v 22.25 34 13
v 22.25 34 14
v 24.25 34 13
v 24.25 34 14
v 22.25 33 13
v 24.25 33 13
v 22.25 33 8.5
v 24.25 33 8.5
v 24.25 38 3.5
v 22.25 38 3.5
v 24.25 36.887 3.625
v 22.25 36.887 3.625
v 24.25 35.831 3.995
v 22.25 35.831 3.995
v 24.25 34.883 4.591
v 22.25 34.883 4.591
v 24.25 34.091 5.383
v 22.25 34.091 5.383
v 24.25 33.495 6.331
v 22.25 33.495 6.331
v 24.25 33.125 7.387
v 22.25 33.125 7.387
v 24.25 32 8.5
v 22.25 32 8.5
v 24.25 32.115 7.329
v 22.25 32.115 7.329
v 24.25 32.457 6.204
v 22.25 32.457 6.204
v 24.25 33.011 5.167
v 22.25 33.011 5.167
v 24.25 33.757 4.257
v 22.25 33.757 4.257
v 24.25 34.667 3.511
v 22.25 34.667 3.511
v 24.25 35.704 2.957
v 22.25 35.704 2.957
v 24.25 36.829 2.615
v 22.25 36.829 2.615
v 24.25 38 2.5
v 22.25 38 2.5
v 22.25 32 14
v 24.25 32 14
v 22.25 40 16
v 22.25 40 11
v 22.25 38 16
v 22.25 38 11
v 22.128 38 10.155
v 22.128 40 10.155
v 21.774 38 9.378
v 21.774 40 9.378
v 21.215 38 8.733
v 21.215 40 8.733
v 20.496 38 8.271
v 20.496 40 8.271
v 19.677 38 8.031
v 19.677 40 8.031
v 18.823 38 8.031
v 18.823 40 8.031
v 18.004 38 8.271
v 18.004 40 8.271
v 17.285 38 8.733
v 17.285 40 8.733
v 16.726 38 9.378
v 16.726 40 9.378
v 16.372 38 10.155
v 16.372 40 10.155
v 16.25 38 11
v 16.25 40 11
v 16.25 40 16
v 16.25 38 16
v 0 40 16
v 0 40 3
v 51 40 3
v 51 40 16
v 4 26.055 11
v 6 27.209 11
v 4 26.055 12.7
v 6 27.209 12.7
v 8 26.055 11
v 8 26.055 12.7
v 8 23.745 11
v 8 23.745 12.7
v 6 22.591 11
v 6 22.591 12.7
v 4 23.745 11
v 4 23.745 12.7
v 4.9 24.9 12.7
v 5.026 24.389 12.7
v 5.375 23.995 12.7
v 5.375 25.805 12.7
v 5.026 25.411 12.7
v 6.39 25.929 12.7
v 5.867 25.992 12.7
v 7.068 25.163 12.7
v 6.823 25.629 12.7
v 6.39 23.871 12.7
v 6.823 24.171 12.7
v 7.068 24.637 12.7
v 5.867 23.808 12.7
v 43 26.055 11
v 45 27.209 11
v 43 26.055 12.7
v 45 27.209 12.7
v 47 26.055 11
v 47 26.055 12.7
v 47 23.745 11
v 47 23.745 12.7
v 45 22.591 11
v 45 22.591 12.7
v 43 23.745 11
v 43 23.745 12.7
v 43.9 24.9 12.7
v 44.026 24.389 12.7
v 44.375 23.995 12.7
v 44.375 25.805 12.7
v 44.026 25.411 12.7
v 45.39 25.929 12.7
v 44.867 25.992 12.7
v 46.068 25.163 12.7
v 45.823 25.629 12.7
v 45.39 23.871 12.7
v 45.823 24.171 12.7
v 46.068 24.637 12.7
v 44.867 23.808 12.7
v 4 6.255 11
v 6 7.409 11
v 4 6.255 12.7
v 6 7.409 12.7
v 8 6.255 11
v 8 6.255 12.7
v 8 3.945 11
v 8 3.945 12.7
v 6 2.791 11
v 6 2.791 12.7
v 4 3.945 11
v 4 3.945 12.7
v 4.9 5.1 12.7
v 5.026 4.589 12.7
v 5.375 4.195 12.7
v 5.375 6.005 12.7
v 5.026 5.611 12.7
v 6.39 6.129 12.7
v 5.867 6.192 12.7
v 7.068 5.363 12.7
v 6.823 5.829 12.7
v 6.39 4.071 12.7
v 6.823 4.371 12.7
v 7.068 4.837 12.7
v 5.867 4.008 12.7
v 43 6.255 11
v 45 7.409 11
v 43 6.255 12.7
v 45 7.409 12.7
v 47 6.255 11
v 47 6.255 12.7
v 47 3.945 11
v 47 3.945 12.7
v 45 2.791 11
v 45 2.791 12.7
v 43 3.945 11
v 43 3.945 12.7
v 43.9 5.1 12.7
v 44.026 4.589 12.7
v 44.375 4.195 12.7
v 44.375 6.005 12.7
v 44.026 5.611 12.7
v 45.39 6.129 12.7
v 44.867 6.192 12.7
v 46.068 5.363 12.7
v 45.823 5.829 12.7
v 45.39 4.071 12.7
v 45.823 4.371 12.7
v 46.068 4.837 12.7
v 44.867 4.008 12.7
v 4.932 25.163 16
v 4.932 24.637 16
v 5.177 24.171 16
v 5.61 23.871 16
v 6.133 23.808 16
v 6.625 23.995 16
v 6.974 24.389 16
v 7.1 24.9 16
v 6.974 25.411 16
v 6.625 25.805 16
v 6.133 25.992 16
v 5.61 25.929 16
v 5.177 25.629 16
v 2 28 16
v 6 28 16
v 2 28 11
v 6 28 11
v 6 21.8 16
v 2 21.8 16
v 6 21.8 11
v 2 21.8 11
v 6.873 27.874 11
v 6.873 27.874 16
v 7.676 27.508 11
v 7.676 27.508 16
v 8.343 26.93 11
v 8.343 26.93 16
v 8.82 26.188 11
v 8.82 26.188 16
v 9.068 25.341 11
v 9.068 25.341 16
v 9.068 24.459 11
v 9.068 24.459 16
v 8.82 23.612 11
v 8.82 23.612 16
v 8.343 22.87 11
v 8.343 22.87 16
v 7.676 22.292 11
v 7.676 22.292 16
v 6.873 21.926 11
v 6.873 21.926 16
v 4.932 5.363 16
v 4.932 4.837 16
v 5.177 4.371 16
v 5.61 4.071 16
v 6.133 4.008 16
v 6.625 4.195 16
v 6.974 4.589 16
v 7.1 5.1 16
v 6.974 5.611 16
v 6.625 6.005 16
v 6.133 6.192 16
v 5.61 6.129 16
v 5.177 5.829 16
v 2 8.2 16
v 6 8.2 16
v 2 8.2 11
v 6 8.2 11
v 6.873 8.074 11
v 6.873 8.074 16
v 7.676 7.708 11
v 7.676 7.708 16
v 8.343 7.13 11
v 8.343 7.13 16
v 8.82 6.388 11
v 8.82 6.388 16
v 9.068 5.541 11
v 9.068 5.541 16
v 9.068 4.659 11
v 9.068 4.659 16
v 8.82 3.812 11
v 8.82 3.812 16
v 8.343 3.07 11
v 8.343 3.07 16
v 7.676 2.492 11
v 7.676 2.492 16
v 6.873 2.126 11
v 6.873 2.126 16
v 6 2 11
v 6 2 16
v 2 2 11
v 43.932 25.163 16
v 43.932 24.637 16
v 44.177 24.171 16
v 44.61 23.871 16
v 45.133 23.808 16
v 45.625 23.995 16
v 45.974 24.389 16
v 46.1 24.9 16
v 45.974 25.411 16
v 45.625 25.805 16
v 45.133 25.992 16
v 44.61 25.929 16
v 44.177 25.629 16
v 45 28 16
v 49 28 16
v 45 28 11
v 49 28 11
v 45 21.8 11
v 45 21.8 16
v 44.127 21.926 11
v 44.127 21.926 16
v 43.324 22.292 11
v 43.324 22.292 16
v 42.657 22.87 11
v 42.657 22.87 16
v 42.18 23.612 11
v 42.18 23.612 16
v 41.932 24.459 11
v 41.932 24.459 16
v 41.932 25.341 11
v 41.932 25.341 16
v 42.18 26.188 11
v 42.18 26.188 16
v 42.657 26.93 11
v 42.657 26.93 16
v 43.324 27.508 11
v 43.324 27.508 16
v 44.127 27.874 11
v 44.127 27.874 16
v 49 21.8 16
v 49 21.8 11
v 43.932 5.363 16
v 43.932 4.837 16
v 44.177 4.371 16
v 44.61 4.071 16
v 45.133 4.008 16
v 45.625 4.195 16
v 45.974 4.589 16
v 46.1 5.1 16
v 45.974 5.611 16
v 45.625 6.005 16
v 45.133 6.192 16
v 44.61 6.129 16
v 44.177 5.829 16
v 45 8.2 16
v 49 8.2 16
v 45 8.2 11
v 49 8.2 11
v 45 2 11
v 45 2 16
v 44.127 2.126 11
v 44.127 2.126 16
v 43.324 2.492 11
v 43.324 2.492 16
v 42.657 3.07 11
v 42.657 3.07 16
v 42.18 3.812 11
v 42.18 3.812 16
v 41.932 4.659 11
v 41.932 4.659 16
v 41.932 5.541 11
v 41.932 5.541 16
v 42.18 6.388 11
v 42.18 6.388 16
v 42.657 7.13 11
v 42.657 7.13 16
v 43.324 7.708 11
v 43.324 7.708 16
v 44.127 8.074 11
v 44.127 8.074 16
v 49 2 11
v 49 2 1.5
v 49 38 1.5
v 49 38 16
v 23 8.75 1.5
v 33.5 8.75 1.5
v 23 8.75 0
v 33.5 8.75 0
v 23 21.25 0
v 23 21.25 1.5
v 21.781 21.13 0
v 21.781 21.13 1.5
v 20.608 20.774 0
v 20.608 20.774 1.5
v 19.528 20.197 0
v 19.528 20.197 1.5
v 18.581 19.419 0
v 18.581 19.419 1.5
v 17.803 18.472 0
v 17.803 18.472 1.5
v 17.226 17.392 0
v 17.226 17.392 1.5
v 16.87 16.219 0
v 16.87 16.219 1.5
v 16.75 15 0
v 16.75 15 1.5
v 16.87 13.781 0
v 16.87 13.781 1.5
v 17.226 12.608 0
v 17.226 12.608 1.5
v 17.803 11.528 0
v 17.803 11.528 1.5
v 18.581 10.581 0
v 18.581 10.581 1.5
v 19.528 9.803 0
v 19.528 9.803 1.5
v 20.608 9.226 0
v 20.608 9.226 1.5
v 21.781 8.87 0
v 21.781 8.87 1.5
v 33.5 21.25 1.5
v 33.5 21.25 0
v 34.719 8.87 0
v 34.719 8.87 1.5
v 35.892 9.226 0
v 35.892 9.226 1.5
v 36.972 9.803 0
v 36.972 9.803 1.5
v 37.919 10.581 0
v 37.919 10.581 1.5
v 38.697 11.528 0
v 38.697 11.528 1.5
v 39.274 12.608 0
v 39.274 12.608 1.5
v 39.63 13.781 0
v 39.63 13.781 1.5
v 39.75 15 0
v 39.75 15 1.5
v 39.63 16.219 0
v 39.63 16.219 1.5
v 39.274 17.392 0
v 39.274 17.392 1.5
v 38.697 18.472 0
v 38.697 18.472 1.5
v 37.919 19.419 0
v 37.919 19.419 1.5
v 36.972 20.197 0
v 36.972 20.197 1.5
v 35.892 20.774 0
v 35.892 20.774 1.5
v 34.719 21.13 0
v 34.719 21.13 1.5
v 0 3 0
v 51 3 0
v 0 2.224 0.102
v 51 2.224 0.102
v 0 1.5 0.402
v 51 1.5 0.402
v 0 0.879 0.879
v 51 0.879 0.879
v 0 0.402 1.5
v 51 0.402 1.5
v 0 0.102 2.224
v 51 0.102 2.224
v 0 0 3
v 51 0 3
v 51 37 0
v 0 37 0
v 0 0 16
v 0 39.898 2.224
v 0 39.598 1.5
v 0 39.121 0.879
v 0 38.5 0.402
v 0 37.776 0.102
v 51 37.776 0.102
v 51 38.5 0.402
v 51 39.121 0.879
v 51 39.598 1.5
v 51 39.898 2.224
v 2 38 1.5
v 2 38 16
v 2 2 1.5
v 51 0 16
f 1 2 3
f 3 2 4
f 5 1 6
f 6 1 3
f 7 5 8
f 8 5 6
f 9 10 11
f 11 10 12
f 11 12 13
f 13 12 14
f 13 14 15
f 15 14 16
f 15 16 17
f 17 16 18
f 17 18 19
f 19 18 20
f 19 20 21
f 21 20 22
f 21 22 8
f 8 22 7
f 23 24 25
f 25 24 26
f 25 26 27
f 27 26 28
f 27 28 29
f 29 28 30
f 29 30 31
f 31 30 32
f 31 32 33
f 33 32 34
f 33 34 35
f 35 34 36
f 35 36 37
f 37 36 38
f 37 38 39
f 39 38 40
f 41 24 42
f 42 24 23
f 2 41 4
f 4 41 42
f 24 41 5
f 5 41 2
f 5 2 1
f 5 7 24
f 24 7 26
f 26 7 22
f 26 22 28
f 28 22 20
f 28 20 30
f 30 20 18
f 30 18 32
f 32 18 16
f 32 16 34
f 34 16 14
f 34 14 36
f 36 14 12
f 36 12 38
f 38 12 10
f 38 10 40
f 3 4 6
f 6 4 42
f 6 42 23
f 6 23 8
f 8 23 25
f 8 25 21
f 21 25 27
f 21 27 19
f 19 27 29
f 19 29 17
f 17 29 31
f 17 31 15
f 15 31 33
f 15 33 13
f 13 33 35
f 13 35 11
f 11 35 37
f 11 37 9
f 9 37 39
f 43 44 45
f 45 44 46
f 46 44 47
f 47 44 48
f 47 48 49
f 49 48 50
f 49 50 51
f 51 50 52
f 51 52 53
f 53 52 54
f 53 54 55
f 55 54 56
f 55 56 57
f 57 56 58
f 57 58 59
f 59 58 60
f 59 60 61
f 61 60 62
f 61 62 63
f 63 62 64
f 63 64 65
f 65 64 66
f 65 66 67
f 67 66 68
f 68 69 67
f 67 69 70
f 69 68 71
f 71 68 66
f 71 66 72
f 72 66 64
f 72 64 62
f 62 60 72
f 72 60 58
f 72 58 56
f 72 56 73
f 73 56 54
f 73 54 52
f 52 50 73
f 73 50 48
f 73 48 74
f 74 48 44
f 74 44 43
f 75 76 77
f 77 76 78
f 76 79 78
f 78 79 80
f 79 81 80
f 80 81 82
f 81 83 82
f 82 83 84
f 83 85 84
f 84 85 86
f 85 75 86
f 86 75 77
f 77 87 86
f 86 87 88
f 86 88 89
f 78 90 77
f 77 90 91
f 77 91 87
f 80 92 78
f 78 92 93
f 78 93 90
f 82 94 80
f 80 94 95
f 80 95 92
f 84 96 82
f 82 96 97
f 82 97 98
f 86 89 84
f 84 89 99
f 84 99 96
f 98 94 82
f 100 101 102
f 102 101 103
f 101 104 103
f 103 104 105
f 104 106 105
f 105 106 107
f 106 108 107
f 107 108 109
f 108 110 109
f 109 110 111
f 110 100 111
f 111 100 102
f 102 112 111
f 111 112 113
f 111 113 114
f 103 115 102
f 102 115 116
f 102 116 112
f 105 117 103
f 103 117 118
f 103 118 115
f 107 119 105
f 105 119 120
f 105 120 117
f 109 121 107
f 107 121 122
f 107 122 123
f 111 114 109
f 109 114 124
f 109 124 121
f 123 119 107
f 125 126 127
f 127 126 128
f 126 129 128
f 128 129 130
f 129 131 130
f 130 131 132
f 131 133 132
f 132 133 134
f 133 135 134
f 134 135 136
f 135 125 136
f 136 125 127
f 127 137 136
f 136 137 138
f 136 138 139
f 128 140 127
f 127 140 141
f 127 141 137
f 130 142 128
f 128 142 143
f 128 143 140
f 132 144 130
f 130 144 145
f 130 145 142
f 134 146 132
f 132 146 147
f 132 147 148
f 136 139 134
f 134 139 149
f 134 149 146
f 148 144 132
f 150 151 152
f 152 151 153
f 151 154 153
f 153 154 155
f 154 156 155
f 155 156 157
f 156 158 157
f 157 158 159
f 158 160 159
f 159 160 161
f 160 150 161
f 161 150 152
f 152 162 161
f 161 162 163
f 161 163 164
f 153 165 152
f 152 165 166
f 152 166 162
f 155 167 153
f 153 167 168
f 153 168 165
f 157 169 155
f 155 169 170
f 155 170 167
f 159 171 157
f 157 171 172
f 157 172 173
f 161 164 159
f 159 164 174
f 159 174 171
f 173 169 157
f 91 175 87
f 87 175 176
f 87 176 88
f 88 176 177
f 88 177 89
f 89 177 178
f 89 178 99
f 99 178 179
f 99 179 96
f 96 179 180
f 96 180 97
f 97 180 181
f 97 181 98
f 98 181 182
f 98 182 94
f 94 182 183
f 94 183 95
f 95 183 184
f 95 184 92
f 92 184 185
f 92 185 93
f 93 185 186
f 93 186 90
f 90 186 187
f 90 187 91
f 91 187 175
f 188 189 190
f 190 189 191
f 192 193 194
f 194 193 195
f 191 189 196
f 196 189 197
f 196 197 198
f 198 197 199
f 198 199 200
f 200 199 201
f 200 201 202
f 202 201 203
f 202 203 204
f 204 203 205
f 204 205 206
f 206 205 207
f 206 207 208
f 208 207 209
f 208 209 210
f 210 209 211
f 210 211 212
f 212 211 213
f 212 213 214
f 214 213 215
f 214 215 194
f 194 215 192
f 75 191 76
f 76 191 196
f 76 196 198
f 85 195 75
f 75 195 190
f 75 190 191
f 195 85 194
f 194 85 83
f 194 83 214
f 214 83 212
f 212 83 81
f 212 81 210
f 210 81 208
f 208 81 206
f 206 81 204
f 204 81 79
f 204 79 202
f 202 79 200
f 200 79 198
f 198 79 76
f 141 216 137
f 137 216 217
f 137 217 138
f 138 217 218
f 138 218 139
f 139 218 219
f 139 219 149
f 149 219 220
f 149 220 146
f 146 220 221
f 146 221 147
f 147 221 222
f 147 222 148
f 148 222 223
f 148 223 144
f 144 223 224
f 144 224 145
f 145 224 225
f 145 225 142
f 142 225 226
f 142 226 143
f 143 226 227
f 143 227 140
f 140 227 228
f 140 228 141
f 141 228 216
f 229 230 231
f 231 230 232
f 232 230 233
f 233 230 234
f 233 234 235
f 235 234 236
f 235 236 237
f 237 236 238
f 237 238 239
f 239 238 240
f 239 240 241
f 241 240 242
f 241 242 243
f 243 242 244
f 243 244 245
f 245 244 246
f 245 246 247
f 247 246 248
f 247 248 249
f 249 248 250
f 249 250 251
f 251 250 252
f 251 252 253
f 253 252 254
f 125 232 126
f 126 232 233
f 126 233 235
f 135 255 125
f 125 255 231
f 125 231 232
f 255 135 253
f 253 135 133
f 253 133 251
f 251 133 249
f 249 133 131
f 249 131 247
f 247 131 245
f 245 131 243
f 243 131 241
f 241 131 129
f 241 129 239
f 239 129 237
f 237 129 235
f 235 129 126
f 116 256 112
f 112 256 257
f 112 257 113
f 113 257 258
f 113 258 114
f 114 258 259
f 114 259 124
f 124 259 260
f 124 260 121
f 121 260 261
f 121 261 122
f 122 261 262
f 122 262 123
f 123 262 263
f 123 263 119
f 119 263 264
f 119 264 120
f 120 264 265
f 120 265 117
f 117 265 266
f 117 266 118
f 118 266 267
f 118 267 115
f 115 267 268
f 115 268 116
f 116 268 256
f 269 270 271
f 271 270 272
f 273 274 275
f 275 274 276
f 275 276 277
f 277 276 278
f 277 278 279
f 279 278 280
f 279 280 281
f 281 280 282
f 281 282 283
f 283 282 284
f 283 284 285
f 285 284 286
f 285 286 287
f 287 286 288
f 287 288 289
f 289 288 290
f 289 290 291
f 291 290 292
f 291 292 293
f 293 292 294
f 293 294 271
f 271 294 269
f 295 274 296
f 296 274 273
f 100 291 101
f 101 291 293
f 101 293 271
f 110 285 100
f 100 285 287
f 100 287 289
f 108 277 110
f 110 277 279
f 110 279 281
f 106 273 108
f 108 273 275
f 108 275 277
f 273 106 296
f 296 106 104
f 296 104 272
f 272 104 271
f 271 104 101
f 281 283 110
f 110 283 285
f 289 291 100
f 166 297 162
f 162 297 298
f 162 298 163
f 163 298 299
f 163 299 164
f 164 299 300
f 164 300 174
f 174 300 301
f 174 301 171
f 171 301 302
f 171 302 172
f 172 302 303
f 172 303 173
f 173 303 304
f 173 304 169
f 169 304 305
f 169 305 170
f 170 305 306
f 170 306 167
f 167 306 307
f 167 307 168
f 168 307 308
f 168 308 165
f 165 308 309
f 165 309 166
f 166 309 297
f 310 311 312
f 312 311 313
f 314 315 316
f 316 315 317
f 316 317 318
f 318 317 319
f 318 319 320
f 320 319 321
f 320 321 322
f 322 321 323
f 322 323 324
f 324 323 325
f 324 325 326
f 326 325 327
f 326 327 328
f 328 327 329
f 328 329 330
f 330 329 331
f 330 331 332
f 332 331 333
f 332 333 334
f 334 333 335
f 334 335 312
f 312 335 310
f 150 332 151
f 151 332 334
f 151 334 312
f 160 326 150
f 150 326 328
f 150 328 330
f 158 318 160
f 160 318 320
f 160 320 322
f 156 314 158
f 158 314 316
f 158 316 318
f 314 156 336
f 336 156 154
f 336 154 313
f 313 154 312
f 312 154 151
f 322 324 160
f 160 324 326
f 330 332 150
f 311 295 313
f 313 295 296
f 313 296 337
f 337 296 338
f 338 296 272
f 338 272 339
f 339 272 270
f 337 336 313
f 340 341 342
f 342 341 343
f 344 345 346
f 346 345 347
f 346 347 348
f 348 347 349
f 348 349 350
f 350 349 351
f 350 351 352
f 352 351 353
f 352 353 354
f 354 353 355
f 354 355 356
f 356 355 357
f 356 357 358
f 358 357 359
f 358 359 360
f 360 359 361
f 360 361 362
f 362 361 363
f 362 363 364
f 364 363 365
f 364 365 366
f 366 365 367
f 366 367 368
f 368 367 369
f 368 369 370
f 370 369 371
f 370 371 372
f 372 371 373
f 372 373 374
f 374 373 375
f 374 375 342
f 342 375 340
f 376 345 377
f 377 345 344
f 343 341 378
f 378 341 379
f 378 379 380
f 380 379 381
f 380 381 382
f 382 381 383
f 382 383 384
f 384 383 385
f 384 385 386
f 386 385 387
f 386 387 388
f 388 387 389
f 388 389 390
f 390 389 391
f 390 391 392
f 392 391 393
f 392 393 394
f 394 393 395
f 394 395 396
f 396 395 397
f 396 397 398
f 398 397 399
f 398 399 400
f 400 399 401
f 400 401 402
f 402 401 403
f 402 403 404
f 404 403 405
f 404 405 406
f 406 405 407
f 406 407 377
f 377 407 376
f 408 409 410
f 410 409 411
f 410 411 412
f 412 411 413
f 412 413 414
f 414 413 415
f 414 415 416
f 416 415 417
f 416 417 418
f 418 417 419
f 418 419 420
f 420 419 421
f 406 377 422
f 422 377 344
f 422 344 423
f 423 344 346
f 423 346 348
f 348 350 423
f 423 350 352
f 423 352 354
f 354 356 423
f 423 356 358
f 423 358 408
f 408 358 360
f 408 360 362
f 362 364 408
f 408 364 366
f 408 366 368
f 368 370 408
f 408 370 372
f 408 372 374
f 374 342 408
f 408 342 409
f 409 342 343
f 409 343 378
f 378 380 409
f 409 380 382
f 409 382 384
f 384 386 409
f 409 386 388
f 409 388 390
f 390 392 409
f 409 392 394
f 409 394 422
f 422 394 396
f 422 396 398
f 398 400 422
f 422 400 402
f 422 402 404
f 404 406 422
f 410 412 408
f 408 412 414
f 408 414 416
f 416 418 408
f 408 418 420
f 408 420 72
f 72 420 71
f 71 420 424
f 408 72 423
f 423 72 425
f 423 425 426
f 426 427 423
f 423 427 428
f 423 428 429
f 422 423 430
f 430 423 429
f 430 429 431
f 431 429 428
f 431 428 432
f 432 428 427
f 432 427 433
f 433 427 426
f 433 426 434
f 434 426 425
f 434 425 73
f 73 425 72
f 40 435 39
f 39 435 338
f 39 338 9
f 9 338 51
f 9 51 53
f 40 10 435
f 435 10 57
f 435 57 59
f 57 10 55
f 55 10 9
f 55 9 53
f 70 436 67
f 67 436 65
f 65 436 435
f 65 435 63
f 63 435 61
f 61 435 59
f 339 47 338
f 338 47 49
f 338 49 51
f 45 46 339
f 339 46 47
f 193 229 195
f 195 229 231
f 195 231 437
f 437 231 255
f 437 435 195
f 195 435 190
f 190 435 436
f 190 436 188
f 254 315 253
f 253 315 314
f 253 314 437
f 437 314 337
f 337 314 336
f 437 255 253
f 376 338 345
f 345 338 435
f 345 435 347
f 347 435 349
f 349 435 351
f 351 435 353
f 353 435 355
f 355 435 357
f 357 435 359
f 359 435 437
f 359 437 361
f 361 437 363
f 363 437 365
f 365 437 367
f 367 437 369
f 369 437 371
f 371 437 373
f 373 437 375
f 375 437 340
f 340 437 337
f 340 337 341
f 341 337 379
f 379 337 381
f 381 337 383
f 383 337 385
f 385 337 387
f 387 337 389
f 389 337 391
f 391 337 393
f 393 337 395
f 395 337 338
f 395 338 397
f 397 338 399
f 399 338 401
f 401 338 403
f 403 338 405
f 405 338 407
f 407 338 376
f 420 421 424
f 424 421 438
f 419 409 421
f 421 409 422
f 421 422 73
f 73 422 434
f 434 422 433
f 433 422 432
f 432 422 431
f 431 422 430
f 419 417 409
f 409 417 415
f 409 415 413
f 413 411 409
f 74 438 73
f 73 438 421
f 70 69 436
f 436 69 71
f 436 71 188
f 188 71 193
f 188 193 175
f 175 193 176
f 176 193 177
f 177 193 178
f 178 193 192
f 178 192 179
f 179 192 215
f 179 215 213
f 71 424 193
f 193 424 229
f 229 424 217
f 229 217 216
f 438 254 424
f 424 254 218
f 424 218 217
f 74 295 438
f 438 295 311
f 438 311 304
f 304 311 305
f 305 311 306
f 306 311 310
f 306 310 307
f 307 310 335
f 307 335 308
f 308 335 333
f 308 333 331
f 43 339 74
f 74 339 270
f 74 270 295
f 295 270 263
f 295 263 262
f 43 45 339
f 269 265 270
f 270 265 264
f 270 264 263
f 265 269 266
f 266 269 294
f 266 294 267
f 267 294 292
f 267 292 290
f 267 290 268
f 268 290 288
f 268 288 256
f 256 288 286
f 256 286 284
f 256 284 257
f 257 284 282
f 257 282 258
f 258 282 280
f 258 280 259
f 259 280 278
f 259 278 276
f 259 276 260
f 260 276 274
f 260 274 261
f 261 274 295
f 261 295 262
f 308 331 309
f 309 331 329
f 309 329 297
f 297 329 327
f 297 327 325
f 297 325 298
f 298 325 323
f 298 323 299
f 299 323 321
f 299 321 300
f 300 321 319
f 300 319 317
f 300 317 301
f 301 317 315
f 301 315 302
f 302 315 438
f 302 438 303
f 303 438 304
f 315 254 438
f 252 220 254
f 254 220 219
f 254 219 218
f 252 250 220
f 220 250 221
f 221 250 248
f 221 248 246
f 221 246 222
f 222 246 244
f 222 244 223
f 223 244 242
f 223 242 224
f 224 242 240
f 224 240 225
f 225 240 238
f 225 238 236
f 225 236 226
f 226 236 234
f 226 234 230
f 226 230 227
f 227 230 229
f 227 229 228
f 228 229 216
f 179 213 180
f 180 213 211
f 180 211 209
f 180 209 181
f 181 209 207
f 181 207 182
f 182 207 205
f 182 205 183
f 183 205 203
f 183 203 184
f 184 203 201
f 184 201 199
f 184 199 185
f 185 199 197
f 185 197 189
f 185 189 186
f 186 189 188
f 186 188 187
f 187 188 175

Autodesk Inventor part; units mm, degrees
sketch "Sketch1" plane through (0, 0, 0) normal (0, 0, 1) x (1, 0, 0)
  line L0 (0, 0) -> (51, 0)
  line L1 (51, 0) -> (51, 40)
  line L2 (51, 40) -> (0, 40)
  line L3 (0, 40) -> (0, 0)
  dimension "d0" = 40
  dimension "d1" = 51
extrude "Extrusion1" add sketch "Sketch1" along normal blind 16
sketch "Sketch2" plane through (0, 0, 16) normal (0, 0, 1) x (1, 0, 0)
  line L0 (2, 38) -> (49, 38)
  line L1 (49, 38) -> (49, 2)
  line L2 (49, 2) -> (2, 2)
  line L3 (2, 2) -> (2, 38)
  line L4 (51, 40) -> (0, 40) projected
  line L5 (0, 40) -> (0, 0) projected
  line L6 (51, 0) -> (51, 40) projected
  line L7 (0, 0) -> (51, 0) projected
  dimension "d4" = 2
  dimension "d5" = 2
  dimension "d6" = 2
  dimension "d7" = 2
extrude "Extrusion2" cut sketch "Sketch2" against normal blind 14.5 contours L0 L1 L2 L3
fillet "Fillet1" radius 3 2 edges at (25.5, 40, 0) (25.5, 0, 0)
sketch "Sketch3" plane through (0, 0, 0) normal (0, 0, -1) x (-1, 0, 0)
  line L0 (-51, 3) -> (-51, 37) projected
  line L1 (0, 37) -> (0, 3) projected
  line L2 (-51, 37) -> (0, 37) projected
  line L3 (0, 3) -> (-51, 3) projected
  circle A0 centre (-33.5, 15) radius 6.25
  circle A1 centre (-23, 15) radius 6.25
  line L4 (-33.5, 21.25) -> (-23, 21.25)
  line L5 (-33.5, 8.75) -> (-23, 8.75)
  line L6 (0, 40) -> (-51, 40) projected
  point P0 (0, 0)
  point P1 (-28.25, 21.25)
  dimension "d49" = 12.5
  dimension "d51" = 10.5
  dimension "d52" = 12.5
  dimension "d54" = 17.5
  dimension "d55" = 22.75
  dimension "d58" = 25
extrude "Extrusion3" cut sketch "Sketch3" against normal blind 14 contours A0 A1 | L4 A1 A0 | A0 A1 L5 | A1 A0 | A0 A1
sketch "Sketch4" plane through (0, 40, 16) normal (0, 1, 0) x (1, 0, 0)
  line L0 (35.25, 0) -> (21.25, 0)
  line L1 (21.25, 0) -> (21.25, 8)
  line L2 (21.25, 8) -> (35.25, 8)
  line L3 (35.25, 8) -> (35.25, 0)
  line L4 (51, 0) -> (0, 0) projected
  line L5 (0, 13) -> (0, 0) projected
  line L6 (51, 13) -> (51, 0) projected
  point P0 (0, 16)
  dimension "d18" = 14
  dimension "d19" = 8
  dimension "d20" = 21.25
  dimension "d21" = 15.75
ref_plane "Work Plane1" through (0, 0, 16) normal (0, 0, 1) x (1, 0, 0)
sketch "Sketch5" plane through (0, 0, 16) normal (0, 0, 1) x (1, 0, 0)
  circle A0 centre (6, 24.9) radius 3.1
  line L0 (49, 38) -> (49, 2) projected
  line L1 (6, 28) -> (2, 28)
  line L2 (6, 21.8) -> (2, 21.8)
  circle A1 centre (6, 24.9) radius 1.1
  line L3 (2, 2) -> (2, 38) projected
  line L4 (25.5, 34) -> (25.5, 3) construction
  line L5 (0, 3) -> (51, 3) construction
  line L6 (2, 2) -> (2, 38) construction
  line L7 (49, 38) -> (49, 2) construction
  circle A2 centre (6, 5.1) radius 3.1
  line L8 (6, 2) -> (2, 2)
  line L9 (6, 8.2) -> (2, 8.2)
  circle A3 centre (6, 5.1) radius 1.1
  line L10 (2, 38) -> (2, 2)
  line L11 (2, 38) -> (2, 2) construction
  circle A4 centre (45, 24.9) radius 3.1
  line L12 (45, 28) -> (49, 28)
  line L13 (45, 21.8) -> (49, 21.8)
  circle A5 centre (45, 24.9) radius 1.1
  line L14 (49, 2) -> (49, 38)
  line L15 (51, 3) -> (0, 3) construction
  line L16 (49, 2) -> (49, 38) construction
  line L17 (49, 38) -> (49, 2)
  line L18 (49, 38) -> (49, 2) construction
  line L19 (45, 8.2) -> (49, 8.2)
  circle A6 centre (45, 5.1) radius 3.1
  line L20 (45, 2) -> (49, 2)
  circle A7 centre (45, 5.1) radius 1.1
  line L21 (2, 38) -> (49, 38) projected
  line L22 (49, 2) -> (2, 2) projected
  point P0 (0, 0)
  point P1 (4, 28)
  point P2 (4, 2)
  point P3 (47, 28)
  point P4 (47, 2)
  point P5 (49, 8.2)
  point P6 (2, 2)
  point P7 (2, 8.2)
  point P8 (25.5, 38)
  dimension "d28" = 6.2
  dimension "d30" = 4
  dimension "d31" = 2.2
  dimension "d61" = 19.8
  dimension "d62" = 6.2
extrude "Extrusion5" add sketch "Sketch5" against normal blind 5 contours A0 | A0 L2 L3 L1 | L9 A2 L8 L3 | A2 | L0 L13 A4 L12 | A4 | A6 | A6 L19 L0 L20
sketch "Sketch6" plane through (0, 0, 11) normal (0, 0, -1) x (-1, 0, 0)
  circle A0 centre (-45, 24.9) radius 1.1 projected
  line L0 (-45, 22.5906) -> (-47, 23.7453)
  line L1 (-47, 23.7453) -> (-47, 26.0547)
  line L2 (-47, 26.0547) -> (-45, 27.2094)
  line L3 (-45, 27.2094) -> (-43, 26.0547)
  line L4 (-43, 26.0547) -> (-43, 23.7453)
  line L5 (-43, 23.7453) -> (-45, 22.5906)
  arc A1 (-6, 28) -> (-6, 21.8) centre (-6, 24.9) ccw projected
  line L6 (-6, 22.5906) -> (-8, 23.7453)
  line L7 (-8, 23.7453) -> (-8, 26.0547)
  line L8 (-8, 26.0547) -> (-6, 27.2094)
  line L9 (-6, 27.2094) -> (-4, 26.0547)
  line L10 (-4, 26.0547) -> (-4, 23.7453)
  line L11 (-4, 23.7453) -> (-6, 22.5906)
  circle A2 centre (-6, 5.1) radius 1.1 projected
  line L12 (-6, 2.7906) -> (-8, 3.9453)
  line L13 (-8, 3.9453) -> (-8, 6.2547)
  line L14 (-8, 6.2547) -> (-6, 7.4094)
  line L15 (-6, 7.4094) -> (-4, 6.2547)
  line L16 (-4, 6.2547) -> (-4, 3.9453)
  line L17 (-4, 3.9453) -> (-6, 2.7906)
  arc A3 (-45, 2) -> (-45, 8.2) centre (-45, 5.1) ccw projected
  line L18 (-45, 2.7906) -> (-47, 3.9453)
  line L19 (-47, 3.9453) -> (-47, 6.2547)
  line L20 (-47, 6.2547) -> (-45, 7.4094)
  line L21 (-45, 7.4094) -> (-43, 6.2547)
  line L22 (-43, 6.2547) -> (-43, 3.9453)
  line L23 (-43, 3.9453) -> (-45, 2.7906)
  circle A4 centre (-45, 5.1) radius 1.1 projected
  circle A5 centre (-6, 24.9) radius 1.1 projected
  point P0 (0, 0)
  point P1 (-6, 38)
  point P2 (-6, 5.1)
  point P3 (-45, 5.1)
  dimension "d45" = 4
extrude "Extrusion6" cut sketch "Sketch6" against normal blind 1.7
ref_plane "Work Plane2" through (22.25, 40, 4.75) normal (0, 0, 1) x (1, 0, 0)
sketch "Sketch10" plane through (0, 40, 16) normal (0, 1, 0) x (1, 0, 0)
  line L0 (45, 0) -> (6, 0) projected
  line L1 (16.25, 0) -> (22.25, 0)
  line L2 (22.25, 0) -> (22.25, 5)
  line L3 (22.25, 5) -> (16.25, 5)
  line L4 (16.25, 5) -> (16.25, 0)
  circle A0 centre (19.25, 5) radius 3
  line L5 (0, 13) -> (0, 0) projected
  point P0 (0, 16)
  point P1 (16.25, 5)
  point P2 (22.25, 0)
  dimension "d65" = 16.25
  dimension "d66" = 6
  dimension "d67" = 5
extrude "Extrusion9" cut sketch "Sketch10" against normal blind 2
ref_plane "Work Plane4" through (22.25, 40, 11) normal (-1, 0, 0) x (0, 0, 1)
sketch "Sketch12" plane through (22.25, 40, 11) normal (-1, 0, 0) x (0, 0, 1)
  line L0 (5, -2) -> (-9.5, -2) projected
  line L1 (-2.5, -7) -> (3, -7)
  line L2 (3, -7) -> (3, -8)
  arc A0 (-8.5, -2) -> (-2.5, -8) centre (-2.5, -2) ccw
  line L3 (3, -8) -> (-2.5, -8)
  arc A1 (-7.5, -2) -> (-2.5, -7) centre (-2.5, -2) ccw
  line L4 (3, -7) -> (2, -7)
  line L5 (2, -7) -> (2, -6)
  line L6 (2, -6) -> (3, -6)
  line L7 (3, -6) -> (3, -7)
  point P0 (-11, -40)
  point P1 (-3, -2)
  point P2 (3.5, -2)
  point P3 (2, -7)
  dimension "d73" = 1
  dimension "d74" = 5
  dimension "d77" = 1
  dimension "d78" = 1
  dimension "d79" = 1
  dimension "d80" = 4.5
  dimension "d81" = 5
extrude "Extrusion10" add sketch "Sketch12" against normal blind 2
properties part number "lidarhouse"
